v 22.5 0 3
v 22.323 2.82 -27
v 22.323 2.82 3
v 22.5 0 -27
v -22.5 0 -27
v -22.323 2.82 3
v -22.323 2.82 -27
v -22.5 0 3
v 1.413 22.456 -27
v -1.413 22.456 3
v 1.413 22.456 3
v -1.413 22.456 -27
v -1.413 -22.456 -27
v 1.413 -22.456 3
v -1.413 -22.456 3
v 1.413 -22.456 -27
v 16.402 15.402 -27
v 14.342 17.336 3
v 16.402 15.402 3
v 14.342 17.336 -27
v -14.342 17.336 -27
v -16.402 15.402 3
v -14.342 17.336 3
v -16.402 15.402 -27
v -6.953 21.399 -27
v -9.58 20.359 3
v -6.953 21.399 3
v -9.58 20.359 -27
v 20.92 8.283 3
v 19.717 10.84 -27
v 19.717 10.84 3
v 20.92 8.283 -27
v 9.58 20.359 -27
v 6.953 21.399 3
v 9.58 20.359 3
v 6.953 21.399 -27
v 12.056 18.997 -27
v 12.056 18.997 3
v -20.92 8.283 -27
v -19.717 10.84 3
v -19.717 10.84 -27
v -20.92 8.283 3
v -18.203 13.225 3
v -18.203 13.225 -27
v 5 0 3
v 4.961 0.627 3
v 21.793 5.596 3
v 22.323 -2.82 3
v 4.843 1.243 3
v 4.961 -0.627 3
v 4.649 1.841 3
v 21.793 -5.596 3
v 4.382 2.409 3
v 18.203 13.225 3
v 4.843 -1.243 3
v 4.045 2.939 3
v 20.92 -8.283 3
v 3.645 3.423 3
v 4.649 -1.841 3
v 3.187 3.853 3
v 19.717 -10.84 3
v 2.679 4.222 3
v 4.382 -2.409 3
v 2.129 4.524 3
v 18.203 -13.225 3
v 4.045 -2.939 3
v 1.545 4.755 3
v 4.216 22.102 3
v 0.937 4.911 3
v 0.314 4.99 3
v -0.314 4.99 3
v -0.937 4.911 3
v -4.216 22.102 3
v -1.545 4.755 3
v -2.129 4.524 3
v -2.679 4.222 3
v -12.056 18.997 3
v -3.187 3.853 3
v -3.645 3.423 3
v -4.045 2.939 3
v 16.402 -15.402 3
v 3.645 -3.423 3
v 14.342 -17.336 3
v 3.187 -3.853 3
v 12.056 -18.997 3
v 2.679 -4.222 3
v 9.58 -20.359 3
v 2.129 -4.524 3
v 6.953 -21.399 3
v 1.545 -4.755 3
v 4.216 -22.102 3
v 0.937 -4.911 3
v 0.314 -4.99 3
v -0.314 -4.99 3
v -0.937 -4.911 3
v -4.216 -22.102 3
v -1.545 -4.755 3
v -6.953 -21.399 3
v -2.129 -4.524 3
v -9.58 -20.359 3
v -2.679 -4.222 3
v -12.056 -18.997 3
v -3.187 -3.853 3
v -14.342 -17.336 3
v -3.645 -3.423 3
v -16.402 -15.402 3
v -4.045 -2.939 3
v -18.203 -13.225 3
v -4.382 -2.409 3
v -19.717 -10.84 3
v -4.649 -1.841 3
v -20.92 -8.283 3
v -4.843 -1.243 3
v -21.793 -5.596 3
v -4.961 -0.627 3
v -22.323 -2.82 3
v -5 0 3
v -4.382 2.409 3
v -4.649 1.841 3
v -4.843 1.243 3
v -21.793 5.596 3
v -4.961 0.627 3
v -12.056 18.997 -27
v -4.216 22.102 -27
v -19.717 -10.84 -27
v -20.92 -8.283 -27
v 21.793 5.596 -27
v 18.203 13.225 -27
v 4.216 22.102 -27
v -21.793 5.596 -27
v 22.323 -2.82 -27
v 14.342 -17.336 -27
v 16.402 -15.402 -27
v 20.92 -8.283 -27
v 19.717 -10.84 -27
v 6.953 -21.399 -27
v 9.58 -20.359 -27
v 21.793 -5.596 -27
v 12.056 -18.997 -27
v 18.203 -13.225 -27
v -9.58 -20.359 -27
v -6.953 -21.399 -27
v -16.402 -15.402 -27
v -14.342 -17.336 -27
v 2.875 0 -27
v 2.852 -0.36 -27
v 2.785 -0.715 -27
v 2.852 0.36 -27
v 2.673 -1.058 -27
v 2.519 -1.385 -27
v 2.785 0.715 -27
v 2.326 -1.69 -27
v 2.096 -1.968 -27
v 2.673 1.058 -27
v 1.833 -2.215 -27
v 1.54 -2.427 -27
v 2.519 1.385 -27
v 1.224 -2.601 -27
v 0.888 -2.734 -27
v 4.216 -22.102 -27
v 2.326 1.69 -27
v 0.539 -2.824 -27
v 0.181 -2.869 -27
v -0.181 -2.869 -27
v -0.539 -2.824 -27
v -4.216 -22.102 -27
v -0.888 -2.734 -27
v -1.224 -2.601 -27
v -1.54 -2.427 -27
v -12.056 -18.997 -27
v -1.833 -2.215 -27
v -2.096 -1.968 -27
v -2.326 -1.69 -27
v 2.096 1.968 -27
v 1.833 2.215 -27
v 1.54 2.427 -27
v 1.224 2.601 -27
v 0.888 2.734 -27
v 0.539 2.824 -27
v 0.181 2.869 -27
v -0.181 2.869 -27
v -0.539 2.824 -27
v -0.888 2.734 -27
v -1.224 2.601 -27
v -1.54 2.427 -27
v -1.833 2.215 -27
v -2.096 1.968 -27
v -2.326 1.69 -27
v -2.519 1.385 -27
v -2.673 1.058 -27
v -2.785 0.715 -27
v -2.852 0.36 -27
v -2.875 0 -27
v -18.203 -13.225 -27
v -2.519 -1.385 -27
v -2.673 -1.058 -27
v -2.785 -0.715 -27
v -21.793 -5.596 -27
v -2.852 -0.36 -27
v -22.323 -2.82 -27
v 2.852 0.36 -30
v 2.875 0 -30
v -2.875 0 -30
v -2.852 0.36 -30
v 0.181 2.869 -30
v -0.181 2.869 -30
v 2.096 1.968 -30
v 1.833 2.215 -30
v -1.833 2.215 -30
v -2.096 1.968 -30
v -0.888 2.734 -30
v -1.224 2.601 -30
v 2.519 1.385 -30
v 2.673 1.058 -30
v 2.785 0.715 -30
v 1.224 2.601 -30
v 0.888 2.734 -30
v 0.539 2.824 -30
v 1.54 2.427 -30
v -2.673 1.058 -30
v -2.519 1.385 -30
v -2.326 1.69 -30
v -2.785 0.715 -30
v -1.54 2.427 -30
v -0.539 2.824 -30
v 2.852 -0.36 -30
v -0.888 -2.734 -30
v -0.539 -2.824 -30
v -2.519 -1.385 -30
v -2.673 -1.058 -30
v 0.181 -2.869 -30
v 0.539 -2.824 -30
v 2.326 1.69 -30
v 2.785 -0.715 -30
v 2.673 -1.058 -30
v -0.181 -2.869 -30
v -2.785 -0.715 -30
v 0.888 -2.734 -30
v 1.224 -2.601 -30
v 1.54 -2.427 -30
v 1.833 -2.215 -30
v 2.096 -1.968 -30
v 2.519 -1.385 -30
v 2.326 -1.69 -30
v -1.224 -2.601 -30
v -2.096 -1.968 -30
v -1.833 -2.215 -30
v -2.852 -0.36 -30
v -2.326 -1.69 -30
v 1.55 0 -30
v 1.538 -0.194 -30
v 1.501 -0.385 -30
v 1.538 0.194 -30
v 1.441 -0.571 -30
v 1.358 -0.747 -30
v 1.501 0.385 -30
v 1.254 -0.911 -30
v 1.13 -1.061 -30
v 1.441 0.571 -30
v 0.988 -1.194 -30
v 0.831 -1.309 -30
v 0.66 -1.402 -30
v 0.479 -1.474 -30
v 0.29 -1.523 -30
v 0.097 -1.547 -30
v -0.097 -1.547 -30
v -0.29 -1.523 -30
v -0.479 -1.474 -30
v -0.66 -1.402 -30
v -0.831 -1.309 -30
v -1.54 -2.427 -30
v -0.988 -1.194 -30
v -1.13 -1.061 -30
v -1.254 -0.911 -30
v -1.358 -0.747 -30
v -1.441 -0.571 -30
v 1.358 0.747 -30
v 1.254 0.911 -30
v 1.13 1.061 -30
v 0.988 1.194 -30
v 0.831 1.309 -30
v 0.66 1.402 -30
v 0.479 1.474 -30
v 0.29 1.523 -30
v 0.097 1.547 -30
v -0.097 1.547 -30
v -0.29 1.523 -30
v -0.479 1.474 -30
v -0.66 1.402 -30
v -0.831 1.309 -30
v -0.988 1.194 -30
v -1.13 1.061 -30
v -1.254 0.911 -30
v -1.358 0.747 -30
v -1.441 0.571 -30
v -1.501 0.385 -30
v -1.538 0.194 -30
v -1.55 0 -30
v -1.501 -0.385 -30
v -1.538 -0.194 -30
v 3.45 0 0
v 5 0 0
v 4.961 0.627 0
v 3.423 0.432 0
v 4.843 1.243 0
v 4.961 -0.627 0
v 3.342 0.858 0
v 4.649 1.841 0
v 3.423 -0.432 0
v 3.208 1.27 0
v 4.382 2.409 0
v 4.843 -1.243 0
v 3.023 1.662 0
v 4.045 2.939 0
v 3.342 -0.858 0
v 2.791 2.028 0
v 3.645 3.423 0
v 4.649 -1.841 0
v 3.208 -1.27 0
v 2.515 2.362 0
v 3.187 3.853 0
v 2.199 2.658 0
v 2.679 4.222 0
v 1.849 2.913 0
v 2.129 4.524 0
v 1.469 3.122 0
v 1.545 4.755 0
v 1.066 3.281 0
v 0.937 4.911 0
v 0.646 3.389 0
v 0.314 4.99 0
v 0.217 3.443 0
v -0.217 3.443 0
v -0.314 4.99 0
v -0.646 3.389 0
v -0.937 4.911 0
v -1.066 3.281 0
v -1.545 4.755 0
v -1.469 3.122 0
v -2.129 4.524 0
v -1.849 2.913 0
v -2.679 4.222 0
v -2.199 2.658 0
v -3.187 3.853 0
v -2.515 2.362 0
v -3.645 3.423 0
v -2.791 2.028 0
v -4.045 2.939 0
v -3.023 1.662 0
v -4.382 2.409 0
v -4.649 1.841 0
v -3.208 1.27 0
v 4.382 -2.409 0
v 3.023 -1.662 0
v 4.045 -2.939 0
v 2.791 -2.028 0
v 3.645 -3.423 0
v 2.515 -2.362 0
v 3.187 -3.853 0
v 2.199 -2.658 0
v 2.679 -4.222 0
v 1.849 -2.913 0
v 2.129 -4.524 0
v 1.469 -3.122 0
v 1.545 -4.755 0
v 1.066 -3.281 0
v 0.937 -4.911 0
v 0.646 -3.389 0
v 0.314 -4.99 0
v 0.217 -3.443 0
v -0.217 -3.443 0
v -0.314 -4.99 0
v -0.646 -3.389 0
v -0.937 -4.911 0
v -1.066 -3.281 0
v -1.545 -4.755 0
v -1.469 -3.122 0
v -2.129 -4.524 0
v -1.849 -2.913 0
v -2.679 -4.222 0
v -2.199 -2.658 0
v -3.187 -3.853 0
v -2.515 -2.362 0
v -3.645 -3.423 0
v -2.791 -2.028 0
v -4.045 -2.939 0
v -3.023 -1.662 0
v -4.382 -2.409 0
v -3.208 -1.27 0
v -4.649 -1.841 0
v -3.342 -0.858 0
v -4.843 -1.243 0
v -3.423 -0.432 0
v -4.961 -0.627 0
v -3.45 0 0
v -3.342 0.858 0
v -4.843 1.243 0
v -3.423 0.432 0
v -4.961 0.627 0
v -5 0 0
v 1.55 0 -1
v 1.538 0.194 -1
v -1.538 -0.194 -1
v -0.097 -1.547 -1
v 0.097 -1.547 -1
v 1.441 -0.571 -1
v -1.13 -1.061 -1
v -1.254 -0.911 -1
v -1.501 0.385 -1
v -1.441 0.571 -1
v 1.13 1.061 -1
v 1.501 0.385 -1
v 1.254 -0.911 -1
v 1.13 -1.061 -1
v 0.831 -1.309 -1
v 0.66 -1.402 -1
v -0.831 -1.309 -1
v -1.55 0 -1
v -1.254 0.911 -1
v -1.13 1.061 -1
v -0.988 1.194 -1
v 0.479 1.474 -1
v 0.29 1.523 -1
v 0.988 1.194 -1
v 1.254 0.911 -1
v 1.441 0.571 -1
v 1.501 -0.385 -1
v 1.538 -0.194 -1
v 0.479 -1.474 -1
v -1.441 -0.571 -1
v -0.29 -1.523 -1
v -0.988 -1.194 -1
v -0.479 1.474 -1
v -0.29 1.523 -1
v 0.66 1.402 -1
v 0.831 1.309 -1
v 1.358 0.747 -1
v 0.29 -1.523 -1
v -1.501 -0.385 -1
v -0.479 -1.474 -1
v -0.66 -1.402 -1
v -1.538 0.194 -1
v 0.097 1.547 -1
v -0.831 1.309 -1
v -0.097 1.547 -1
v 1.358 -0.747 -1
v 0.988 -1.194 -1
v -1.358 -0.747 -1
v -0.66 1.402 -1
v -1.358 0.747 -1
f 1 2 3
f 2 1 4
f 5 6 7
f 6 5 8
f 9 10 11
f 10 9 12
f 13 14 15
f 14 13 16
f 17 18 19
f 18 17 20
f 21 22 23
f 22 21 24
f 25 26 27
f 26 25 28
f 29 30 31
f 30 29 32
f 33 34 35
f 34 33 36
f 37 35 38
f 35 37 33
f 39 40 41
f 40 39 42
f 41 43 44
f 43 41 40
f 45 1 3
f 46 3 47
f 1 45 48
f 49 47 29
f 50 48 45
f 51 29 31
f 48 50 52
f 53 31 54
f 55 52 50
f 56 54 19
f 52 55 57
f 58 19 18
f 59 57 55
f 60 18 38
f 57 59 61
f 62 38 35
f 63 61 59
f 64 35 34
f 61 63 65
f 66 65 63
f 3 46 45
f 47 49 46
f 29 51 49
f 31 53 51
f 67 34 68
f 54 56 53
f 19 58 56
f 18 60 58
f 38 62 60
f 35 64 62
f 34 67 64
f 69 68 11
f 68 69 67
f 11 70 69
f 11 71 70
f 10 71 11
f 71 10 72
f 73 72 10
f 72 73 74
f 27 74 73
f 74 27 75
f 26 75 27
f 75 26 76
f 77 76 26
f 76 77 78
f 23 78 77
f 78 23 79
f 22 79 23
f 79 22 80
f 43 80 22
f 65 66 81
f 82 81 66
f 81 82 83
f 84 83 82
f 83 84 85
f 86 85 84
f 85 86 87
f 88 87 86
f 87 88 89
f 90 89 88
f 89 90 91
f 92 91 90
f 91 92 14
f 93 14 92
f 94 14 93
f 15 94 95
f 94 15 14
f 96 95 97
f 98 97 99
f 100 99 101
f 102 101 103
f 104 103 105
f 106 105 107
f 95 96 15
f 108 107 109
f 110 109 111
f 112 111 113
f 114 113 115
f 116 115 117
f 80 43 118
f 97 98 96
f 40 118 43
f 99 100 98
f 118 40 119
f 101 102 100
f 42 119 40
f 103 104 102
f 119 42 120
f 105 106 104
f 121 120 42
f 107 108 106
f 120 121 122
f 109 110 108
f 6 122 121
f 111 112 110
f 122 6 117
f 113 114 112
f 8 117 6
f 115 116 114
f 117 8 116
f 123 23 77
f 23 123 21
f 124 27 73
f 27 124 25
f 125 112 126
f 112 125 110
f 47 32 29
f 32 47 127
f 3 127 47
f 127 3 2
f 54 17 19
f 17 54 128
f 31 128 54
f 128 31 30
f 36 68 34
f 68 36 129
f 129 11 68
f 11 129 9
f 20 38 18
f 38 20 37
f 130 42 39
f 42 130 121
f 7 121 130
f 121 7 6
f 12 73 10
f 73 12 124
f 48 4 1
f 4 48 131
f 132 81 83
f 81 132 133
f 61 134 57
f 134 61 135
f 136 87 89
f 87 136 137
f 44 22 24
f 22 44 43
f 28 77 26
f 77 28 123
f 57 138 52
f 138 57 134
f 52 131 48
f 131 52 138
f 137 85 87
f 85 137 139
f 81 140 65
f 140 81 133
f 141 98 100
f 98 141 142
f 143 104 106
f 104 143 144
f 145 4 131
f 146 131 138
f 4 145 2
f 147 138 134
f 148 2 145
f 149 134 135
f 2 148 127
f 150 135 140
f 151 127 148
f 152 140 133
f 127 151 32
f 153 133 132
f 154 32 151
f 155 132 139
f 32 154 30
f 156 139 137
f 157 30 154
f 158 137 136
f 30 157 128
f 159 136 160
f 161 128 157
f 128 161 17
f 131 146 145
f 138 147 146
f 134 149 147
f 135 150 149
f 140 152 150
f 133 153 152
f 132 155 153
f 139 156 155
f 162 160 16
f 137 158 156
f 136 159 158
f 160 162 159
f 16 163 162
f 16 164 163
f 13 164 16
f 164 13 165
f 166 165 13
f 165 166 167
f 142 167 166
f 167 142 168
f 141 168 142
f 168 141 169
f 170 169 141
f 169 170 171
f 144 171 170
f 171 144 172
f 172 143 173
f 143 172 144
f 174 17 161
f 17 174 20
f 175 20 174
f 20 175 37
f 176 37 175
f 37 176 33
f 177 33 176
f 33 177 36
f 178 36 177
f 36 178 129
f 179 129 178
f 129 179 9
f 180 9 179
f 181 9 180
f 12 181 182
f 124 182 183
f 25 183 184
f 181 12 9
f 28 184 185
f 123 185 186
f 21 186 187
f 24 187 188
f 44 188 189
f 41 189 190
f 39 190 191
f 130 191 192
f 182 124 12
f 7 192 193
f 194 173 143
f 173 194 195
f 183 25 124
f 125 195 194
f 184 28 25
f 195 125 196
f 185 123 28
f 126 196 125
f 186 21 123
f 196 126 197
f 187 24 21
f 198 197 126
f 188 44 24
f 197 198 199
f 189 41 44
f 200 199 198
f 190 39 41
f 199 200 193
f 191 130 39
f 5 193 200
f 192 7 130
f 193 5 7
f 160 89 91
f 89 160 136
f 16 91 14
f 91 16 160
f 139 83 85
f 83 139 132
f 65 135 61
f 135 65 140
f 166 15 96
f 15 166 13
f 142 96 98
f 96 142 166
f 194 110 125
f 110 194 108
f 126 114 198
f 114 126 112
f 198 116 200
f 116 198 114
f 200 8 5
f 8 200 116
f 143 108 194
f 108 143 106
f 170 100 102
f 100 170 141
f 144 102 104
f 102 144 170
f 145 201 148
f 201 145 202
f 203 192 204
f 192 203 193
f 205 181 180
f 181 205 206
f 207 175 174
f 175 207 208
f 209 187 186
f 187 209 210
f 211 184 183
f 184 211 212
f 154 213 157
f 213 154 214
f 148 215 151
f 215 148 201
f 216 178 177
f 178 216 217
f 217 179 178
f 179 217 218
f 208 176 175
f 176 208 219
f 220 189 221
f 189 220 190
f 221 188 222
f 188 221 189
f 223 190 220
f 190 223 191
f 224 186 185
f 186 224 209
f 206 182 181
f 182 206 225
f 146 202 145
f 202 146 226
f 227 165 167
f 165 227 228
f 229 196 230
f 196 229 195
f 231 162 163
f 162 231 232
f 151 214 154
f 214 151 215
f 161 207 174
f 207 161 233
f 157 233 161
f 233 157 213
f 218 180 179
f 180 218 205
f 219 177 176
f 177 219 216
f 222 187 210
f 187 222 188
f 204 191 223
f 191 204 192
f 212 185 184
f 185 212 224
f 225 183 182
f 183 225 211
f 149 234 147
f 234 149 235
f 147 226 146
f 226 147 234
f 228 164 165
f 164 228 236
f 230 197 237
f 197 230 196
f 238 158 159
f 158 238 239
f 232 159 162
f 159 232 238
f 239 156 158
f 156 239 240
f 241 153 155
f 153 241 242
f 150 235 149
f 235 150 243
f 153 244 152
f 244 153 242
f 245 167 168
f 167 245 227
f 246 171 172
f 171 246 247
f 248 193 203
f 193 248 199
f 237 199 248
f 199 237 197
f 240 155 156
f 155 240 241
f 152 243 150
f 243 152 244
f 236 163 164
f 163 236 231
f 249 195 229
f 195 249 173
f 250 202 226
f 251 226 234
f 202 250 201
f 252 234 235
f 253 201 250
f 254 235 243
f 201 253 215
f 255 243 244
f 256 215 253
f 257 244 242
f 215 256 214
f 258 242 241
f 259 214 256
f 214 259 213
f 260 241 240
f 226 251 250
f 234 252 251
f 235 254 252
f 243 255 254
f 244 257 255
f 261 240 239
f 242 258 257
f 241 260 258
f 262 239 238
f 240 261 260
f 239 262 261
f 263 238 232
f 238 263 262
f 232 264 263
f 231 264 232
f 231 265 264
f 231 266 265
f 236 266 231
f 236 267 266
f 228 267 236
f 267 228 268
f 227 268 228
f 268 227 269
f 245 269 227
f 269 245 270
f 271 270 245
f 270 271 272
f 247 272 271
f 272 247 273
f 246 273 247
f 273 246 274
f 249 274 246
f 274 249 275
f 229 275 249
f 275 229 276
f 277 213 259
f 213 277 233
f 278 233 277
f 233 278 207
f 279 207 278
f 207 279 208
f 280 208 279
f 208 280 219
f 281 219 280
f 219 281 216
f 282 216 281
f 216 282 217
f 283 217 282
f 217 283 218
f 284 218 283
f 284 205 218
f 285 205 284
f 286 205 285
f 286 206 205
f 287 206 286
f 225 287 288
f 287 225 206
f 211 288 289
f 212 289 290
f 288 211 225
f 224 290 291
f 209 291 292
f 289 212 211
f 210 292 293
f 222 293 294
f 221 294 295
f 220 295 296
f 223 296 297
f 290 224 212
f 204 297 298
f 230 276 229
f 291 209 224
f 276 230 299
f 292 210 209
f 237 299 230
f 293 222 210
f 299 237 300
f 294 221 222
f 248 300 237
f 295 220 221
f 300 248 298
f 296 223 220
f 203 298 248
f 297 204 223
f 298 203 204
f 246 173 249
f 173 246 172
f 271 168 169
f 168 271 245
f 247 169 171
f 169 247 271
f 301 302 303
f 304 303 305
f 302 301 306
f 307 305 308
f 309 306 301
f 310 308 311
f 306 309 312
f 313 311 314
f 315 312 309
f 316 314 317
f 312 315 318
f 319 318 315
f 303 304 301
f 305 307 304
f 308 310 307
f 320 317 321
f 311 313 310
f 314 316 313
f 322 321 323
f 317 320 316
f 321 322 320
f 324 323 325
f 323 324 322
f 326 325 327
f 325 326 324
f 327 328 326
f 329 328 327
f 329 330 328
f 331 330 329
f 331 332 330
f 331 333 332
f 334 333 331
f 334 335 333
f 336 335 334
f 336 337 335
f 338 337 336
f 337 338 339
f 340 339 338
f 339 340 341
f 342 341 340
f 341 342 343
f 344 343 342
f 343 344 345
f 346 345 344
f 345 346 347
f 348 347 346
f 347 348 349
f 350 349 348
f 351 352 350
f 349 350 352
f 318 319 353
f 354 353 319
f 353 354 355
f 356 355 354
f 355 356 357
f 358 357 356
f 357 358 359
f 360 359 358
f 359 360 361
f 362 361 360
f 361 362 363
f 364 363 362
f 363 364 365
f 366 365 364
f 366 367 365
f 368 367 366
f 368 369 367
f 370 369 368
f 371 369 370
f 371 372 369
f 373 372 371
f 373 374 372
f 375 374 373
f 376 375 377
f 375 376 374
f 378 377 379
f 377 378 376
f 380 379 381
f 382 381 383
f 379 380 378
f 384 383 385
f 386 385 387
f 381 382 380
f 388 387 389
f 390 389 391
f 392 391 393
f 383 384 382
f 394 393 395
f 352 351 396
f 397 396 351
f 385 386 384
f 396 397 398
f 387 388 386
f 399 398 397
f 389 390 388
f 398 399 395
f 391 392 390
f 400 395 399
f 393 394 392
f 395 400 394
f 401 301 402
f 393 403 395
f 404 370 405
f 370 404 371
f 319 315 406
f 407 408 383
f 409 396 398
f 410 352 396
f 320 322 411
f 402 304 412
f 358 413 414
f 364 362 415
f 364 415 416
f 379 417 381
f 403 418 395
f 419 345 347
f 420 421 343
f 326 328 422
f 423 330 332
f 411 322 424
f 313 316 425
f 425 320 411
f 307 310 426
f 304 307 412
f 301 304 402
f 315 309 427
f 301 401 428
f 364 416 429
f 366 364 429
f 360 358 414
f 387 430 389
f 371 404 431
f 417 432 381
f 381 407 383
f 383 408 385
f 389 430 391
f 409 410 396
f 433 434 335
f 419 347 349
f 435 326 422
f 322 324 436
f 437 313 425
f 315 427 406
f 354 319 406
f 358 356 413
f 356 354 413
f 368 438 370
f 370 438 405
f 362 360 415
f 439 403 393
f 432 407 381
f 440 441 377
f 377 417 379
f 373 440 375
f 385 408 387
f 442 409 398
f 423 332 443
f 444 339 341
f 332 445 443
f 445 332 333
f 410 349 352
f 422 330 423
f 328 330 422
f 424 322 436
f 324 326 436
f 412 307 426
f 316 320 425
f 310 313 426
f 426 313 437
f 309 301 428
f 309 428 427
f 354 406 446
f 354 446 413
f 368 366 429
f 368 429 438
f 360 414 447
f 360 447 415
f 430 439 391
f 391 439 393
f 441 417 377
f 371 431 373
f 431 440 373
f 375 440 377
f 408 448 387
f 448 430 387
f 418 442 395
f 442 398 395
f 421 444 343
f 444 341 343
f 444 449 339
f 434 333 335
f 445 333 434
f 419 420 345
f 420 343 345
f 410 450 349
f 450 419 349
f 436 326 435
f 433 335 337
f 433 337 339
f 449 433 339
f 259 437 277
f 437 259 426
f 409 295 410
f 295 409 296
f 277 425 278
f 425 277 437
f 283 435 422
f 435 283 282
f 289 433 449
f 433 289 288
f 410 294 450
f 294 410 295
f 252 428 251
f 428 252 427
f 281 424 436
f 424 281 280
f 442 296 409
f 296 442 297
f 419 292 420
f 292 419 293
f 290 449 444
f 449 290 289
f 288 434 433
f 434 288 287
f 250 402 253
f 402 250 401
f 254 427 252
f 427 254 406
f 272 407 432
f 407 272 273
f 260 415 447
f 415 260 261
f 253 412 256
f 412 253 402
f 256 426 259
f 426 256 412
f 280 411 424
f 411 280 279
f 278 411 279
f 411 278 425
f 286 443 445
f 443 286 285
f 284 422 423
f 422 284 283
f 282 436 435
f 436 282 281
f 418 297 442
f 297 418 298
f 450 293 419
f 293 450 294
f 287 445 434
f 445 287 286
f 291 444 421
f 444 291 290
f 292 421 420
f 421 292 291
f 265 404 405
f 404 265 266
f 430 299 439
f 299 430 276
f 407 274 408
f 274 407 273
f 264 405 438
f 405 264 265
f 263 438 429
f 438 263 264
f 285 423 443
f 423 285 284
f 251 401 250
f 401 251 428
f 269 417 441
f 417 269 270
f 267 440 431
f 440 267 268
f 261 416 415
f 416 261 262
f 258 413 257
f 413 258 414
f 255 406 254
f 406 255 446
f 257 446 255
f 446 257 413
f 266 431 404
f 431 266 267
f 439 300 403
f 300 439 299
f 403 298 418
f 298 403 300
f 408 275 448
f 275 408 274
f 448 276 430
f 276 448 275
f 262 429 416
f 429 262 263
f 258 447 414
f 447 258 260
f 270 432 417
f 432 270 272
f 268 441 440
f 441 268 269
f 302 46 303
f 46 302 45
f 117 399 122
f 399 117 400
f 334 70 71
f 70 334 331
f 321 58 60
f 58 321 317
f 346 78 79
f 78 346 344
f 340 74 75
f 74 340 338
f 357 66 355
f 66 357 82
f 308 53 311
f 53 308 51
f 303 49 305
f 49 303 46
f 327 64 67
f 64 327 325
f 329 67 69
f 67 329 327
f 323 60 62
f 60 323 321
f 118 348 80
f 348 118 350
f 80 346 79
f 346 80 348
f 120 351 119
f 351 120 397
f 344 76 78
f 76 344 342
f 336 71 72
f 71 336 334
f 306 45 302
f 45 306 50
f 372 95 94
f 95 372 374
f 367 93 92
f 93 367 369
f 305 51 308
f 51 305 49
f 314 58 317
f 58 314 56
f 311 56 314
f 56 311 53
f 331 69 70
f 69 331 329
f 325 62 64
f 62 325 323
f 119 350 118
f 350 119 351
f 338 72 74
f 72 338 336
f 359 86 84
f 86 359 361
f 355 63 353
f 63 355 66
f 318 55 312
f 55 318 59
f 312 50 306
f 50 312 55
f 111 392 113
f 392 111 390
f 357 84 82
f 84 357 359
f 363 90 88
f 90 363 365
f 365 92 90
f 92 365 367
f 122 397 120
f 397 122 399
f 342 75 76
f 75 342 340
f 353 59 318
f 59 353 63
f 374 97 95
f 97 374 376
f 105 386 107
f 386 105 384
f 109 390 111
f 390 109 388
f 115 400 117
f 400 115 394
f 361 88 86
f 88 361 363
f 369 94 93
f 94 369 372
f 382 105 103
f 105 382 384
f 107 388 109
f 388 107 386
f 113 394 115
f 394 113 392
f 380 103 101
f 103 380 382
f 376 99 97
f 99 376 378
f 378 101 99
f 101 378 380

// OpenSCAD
$fn = 50;

difference() {
	union() {
		translate(v = [0, 0, -27.0]) {
			cylinder(h = 30, r = 22.5);
		}
		#translate(v = [0, 0, -30.0]) {
			cylinder(h = 30, r = 2.875);
		}
	}
	union() {
		translate(v = [0, 0, 0]) {
			rotate(a = [0, 0, 0]) {
				difference() {
					union() {
						translate(v = [0, 0, -30.0]) {
							cylinder(h = 30, r = 1.25);
						}
						translate(v = [0, 0, -1.0]) {
							cylinder(h = 1.0, r1 = 1.55, r2 = 3.45);
						}
						translate(v = [0, 0, -30.0]) {
							cylinder(h = 30, r = 1.55);
						}
						translate(v = [0, 0, -30.0]) {
							cylinder(h = 30, r = 1.25);
						}
					}
					union();
				}
			}
		}
		#cylinder(h = 3, r = 5.0);
	}
}
